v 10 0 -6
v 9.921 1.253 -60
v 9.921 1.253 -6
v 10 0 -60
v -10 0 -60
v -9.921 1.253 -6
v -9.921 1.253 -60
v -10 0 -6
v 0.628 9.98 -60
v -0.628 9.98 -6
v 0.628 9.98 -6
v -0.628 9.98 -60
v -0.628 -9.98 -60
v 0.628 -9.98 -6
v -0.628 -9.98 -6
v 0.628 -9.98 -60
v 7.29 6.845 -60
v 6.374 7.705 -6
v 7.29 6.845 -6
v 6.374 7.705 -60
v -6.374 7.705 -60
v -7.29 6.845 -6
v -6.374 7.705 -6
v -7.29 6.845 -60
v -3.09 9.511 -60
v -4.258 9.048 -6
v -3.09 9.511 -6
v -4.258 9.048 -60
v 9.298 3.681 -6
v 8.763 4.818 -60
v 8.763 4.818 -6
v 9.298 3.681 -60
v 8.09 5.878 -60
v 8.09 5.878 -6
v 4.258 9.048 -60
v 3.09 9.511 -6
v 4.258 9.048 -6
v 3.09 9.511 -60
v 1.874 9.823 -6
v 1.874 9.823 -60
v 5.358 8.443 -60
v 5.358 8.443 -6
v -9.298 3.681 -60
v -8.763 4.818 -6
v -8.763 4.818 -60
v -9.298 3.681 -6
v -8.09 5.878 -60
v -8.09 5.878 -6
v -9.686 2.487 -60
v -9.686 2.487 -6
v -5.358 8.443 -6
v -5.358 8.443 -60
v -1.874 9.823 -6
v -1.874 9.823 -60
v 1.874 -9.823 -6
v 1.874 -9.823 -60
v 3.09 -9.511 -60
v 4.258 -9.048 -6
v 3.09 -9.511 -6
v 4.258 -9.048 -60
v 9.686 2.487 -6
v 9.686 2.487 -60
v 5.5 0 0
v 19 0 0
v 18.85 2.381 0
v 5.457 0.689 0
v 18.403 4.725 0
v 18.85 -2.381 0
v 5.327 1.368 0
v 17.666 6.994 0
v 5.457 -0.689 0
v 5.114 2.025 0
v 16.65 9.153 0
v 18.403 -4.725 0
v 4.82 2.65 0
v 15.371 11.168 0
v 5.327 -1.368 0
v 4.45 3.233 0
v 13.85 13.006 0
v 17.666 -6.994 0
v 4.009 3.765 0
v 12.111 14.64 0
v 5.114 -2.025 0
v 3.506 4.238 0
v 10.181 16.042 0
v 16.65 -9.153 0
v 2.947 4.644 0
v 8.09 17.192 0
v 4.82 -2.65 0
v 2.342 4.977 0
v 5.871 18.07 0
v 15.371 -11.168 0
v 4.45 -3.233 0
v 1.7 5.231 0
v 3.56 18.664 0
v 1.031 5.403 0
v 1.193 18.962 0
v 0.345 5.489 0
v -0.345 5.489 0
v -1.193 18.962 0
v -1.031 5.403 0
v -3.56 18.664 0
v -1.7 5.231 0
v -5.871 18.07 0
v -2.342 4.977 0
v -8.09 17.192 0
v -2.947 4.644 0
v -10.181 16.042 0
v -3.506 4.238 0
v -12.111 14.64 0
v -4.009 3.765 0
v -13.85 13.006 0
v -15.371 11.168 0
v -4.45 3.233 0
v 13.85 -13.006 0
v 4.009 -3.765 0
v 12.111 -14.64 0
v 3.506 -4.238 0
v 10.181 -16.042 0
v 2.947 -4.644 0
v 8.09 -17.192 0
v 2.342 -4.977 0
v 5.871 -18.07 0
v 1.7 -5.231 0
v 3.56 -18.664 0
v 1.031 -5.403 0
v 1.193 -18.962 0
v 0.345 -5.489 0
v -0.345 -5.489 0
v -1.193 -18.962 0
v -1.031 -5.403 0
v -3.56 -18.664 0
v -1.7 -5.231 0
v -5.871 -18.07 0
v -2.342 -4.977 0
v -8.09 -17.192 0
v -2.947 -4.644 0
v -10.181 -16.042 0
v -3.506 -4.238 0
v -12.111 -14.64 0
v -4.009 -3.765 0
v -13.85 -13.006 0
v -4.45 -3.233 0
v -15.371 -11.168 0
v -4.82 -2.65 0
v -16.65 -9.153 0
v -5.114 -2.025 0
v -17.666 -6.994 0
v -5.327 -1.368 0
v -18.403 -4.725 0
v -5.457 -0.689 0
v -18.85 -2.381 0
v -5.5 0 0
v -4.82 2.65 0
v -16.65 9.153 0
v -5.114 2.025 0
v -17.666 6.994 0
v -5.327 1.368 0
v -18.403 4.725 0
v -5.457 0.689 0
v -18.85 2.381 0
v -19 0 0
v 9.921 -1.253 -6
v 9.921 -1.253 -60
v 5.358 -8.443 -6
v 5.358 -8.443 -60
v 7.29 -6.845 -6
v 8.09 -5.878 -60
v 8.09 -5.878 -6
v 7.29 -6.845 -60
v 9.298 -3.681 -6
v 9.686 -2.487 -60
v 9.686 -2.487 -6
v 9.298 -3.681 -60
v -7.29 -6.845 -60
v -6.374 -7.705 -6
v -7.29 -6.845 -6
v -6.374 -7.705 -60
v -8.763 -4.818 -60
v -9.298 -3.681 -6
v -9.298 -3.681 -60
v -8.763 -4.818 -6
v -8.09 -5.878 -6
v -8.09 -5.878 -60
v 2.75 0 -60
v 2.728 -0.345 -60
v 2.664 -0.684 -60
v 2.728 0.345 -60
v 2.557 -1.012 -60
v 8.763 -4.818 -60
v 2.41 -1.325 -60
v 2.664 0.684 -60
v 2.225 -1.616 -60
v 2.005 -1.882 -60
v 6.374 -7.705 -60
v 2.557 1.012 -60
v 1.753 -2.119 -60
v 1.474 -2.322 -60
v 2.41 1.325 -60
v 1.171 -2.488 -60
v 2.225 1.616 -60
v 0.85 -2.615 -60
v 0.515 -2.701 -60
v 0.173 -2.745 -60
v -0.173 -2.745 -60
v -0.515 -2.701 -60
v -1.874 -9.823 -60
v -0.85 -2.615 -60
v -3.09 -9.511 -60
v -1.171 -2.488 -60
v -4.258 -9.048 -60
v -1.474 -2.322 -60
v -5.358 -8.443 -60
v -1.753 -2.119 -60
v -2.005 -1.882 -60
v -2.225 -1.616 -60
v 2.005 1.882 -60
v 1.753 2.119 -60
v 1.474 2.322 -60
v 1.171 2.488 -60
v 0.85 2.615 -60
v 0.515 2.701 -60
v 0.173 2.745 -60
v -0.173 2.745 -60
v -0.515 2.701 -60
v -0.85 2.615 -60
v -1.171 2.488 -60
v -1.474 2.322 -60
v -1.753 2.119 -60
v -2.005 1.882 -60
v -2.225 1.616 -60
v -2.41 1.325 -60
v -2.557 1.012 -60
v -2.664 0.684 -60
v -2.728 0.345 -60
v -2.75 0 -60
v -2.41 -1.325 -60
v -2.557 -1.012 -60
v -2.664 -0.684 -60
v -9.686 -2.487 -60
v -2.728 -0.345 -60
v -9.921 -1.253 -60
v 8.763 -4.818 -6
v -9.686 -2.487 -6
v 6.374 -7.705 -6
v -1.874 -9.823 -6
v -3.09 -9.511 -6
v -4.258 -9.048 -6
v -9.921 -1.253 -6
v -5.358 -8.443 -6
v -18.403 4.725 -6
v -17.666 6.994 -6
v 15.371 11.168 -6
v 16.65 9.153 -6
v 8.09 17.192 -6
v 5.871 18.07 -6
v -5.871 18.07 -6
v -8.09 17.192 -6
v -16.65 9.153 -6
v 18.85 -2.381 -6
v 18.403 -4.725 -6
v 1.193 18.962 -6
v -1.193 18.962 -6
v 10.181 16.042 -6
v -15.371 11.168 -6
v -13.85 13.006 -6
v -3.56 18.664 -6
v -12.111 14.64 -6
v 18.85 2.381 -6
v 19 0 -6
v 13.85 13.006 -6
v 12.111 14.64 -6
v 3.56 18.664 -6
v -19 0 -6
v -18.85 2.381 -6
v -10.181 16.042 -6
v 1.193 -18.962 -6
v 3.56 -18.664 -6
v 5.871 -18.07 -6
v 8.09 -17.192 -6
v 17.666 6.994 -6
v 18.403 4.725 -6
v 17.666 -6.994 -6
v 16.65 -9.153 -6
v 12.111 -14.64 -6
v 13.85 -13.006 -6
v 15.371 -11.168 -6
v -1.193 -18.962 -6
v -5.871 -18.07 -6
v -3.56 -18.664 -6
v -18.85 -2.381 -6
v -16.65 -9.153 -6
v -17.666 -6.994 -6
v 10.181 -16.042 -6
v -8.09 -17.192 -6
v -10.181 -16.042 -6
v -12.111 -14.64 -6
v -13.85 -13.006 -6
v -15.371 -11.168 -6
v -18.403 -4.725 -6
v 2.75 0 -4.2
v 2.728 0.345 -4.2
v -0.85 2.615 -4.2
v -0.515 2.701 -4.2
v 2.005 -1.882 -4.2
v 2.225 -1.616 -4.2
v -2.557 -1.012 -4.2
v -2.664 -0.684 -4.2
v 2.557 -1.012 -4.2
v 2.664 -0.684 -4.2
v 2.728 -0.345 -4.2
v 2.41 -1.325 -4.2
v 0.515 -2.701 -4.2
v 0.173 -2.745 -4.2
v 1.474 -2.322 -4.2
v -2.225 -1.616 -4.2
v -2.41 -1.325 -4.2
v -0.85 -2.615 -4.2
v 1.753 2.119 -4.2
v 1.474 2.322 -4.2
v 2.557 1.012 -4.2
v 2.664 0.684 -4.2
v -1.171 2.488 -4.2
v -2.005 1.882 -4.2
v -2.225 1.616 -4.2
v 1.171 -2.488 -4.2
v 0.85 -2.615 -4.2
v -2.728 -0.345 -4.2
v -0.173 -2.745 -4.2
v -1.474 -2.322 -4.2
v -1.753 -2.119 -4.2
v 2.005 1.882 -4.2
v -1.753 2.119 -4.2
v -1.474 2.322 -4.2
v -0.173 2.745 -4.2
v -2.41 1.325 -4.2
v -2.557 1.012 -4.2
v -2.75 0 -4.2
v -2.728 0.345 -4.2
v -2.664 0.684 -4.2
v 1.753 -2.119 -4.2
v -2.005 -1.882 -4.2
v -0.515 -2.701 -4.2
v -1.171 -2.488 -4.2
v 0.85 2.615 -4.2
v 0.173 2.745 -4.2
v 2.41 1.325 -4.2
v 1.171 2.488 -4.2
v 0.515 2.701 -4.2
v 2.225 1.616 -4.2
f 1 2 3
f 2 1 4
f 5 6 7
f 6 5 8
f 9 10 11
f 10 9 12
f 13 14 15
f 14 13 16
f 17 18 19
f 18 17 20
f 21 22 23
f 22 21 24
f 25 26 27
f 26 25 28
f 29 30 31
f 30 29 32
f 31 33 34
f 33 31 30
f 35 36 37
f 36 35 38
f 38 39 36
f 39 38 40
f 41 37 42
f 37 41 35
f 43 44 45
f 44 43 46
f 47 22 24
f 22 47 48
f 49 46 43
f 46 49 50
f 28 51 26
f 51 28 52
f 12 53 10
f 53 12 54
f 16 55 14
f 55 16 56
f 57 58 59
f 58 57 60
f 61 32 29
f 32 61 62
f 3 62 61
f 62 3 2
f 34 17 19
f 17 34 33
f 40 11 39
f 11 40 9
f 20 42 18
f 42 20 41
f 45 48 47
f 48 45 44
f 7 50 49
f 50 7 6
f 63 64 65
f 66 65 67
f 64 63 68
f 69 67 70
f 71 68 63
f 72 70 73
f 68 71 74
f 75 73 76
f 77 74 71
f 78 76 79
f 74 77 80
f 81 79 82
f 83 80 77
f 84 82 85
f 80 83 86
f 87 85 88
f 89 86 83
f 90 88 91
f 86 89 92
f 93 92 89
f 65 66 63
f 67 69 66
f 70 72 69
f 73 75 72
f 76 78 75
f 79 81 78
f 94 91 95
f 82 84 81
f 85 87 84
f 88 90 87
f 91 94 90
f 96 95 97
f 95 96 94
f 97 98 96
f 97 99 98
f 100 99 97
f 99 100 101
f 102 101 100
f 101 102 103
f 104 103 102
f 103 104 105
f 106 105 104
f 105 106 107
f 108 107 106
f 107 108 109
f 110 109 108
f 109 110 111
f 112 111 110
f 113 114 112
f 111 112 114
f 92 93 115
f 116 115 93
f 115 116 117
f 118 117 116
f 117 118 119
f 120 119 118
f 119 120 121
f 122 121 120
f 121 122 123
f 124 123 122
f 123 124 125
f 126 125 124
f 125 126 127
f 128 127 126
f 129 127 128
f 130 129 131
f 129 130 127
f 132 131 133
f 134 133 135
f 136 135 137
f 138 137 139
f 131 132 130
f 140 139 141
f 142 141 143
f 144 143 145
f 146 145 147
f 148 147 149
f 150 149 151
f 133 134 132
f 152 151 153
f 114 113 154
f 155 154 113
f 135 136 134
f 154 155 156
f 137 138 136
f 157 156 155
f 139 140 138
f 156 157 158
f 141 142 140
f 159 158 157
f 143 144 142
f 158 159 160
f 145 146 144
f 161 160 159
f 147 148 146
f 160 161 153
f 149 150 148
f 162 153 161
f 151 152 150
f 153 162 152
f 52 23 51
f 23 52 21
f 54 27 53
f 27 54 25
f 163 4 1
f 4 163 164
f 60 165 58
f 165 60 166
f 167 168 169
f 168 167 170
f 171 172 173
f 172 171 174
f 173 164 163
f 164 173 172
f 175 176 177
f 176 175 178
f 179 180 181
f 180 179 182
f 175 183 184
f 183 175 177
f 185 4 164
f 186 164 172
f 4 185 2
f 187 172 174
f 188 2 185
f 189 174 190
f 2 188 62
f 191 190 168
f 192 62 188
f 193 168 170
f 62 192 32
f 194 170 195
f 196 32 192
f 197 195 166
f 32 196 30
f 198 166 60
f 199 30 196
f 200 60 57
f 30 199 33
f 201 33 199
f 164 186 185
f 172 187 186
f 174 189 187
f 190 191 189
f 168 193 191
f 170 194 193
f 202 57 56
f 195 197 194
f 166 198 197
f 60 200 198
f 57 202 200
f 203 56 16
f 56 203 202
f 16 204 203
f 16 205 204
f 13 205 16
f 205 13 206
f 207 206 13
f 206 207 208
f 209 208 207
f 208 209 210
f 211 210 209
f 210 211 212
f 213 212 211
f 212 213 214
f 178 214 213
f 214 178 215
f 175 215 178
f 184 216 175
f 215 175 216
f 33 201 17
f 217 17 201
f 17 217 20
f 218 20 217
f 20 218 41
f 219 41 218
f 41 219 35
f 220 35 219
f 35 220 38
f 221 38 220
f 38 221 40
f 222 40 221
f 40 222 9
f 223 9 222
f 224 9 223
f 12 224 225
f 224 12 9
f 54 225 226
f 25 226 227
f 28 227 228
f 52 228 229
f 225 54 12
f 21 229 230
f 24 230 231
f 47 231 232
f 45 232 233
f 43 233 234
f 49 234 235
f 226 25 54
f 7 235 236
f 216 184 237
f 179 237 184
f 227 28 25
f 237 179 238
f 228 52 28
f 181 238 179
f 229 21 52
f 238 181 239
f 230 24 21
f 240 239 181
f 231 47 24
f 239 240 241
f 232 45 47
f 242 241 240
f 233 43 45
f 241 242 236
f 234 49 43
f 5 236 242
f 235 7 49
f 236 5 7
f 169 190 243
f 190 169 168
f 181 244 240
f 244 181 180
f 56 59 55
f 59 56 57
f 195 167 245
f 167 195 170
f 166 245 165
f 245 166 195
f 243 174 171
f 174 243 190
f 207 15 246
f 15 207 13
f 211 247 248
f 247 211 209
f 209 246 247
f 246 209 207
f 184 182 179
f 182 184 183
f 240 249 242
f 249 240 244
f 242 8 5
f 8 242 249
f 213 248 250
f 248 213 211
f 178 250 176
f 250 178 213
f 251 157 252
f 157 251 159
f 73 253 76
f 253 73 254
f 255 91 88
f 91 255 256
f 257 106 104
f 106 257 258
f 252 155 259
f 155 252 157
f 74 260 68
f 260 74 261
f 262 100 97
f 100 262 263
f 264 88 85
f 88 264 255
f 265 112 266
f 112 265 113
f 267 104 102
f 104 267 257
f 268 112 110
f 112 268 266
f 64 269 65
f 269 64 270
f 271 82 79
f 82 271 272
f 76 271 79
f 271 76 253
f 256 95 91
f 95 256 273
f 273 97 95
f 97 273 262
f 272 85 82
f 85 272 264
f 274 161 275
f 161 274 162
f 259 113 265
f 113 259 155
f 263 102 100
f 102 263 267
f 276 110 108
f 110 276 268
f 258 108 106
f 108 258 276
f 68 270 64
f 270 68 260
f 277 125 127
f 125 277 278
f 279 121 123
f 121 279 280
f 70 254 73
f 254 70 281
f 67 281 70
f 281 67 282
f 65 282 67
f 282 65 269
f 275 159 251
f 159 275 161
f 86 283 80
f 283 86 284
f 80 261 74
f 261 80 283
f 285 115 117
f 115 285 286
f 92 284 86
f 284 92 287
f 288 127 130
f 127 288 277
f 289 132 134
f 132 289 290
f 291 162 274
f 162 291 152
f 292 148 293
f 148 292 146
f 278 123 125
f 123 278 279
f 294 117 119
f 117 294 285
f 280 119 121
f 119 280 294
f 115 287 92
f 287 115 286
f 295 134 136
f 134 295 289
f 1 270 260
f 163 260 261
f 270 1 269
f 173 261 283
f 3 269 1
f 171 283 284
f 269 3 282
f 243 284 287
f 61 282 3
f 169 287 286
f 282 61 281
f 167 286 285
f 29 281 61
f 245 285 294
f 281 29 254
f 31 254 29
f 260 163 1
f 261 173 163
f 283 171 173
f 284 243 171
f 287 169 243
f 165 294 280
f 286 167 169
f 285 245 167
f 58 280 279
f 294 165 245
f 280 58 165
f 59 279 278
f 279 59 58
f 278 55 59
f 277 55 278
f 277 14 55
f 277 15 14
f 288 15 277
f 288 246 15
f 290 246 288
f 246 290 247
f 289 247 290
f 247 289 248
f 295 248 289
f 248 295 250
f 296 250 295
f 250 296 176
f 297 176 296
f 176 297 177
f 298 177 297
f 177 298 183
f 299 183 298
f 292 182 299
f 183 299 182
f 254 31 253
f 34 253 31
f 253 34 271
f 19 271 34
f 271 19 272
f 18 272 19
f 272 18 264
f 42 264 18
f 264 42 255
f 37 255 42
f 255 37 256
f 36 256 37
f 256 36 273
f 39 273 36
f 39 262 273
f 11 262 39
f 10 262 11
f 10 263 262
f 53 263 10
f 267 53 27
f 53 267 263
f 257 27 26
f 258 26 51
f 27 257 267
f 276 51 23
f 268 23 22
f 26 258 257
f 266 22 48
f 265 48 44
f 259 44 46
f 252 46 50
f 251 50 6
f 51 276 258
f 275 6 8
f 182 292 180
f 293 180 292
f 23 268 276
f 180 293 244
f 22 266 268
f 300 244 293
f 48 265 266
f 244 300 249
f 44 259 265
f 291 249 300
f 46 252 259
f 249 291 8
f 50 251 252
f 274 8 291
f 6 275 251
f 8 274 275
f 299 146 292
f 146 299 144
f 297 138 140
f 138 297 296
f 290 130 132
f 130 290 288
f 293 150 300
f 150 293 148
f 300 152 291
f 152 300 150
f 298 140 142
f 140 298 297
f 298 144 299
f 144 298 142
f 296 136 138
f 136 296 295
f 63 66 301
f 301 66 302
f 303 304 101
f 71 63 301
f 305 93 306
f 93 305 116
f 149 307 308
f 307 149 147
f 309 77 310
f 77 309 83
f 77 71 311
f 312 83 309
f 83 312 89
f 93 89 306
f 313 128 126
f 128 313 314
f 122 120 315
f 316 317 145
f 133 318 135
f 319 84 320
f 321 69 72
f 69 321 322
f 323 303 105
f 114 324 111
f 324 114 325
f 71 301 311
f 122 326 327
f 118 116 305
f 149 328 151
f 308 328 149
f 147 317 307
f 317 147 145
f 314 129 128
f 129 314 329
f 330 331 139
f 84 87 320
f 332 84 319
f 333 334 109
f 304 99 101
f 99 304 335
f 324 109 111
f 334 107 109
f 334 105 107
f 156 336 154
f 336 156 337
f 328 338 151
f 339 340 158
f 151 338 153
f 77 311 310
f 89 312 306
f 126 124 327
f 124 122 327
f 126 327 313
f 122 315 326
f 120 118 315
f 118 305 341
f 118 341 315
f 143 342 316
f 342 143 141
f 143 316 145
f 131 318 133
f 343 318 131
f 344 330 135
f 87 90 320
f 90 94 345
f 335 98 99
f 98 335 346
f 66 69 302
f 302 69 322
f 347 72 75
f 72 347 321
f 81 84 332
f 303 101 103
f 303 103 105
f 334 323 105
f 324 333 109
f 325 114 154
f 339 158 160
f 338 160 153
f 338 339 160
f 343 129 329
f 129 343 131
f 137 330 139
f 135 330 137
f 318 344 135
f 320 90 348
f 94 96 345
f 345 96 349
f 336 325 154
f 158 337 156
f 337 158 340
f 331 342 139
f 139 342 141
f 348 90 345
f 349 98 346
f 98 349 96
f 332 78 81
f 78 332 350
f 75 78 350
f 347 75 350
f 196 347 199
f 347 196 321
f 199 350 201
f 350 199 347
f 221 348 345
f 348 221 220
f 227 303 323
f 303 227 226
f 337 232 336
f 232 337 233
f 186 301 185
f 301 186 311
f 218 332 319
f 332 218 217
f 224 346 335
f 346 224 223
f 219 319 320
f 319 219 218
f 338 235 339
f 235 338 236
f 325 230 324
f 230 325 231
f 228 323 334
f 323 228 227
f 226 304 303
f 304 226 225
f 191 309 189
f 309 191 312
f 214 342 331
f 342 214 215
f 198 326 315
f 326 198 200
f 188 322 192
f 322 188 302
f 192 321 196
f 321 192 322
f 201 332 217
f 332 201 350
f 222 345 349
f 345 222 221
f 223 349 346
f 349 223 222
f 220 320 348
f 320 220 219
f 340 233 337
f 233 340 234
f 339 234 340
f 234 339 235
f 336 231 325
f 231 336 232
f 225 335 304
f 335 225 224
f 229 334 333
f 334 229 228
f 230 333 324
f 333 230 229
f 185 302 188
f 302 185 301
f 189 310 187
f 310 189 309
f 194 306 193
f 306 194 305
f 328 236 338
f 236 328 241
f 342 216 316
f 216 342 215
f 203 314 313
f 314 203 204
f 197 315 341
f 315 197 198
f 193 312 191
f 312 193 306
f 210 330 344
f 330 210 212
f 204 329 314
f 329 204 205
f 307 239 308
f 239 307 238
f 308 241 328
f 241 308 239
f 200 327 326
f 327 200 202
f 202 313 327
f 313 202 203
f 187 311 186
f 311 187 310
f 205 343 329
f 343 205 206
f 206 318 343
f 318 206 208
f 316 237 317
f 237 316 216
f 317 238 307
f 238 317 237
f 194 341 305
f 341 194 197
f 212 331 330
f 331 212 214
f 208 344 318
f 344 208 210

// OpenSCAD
$fn = 50;


difference() {
	union() {
		translate(v = [0, 0, -60.0000000000]) {
			cylinder(h = 60, r = 10.0000000000);
		}
		translate(v = [0, 0, -6.0000000000]) {
			cylinder(h = 6, r = 19.0000000000);
		}
	}
	union() {
		translate(v = [0, 0, 0]) {
			rotate(a = [0, 0, 0]) {
				difference() {
					union() {
						#translate(v = [0, 0, -60.0000000000]) {
							cylinder(h = 60, r = 2.2500000000);
						}
						#translate(v = [0, 0, -4.2000000000]) {
							cylinder(h = 4.2000000000, r1 = 2.7500000000, r2 = 5.5000000000);
						}
						#translate(v = [0, 0, -60.0000000000]) {
							cylinder(h = 60, r = 2.7500000000);
						}
						#translate(v = [0, 0, -60.0000000000]) {
							cylinder(h = 60, r = 2.2500000000);
						}
					}
					union();
				}
			}
		}
	}
}
